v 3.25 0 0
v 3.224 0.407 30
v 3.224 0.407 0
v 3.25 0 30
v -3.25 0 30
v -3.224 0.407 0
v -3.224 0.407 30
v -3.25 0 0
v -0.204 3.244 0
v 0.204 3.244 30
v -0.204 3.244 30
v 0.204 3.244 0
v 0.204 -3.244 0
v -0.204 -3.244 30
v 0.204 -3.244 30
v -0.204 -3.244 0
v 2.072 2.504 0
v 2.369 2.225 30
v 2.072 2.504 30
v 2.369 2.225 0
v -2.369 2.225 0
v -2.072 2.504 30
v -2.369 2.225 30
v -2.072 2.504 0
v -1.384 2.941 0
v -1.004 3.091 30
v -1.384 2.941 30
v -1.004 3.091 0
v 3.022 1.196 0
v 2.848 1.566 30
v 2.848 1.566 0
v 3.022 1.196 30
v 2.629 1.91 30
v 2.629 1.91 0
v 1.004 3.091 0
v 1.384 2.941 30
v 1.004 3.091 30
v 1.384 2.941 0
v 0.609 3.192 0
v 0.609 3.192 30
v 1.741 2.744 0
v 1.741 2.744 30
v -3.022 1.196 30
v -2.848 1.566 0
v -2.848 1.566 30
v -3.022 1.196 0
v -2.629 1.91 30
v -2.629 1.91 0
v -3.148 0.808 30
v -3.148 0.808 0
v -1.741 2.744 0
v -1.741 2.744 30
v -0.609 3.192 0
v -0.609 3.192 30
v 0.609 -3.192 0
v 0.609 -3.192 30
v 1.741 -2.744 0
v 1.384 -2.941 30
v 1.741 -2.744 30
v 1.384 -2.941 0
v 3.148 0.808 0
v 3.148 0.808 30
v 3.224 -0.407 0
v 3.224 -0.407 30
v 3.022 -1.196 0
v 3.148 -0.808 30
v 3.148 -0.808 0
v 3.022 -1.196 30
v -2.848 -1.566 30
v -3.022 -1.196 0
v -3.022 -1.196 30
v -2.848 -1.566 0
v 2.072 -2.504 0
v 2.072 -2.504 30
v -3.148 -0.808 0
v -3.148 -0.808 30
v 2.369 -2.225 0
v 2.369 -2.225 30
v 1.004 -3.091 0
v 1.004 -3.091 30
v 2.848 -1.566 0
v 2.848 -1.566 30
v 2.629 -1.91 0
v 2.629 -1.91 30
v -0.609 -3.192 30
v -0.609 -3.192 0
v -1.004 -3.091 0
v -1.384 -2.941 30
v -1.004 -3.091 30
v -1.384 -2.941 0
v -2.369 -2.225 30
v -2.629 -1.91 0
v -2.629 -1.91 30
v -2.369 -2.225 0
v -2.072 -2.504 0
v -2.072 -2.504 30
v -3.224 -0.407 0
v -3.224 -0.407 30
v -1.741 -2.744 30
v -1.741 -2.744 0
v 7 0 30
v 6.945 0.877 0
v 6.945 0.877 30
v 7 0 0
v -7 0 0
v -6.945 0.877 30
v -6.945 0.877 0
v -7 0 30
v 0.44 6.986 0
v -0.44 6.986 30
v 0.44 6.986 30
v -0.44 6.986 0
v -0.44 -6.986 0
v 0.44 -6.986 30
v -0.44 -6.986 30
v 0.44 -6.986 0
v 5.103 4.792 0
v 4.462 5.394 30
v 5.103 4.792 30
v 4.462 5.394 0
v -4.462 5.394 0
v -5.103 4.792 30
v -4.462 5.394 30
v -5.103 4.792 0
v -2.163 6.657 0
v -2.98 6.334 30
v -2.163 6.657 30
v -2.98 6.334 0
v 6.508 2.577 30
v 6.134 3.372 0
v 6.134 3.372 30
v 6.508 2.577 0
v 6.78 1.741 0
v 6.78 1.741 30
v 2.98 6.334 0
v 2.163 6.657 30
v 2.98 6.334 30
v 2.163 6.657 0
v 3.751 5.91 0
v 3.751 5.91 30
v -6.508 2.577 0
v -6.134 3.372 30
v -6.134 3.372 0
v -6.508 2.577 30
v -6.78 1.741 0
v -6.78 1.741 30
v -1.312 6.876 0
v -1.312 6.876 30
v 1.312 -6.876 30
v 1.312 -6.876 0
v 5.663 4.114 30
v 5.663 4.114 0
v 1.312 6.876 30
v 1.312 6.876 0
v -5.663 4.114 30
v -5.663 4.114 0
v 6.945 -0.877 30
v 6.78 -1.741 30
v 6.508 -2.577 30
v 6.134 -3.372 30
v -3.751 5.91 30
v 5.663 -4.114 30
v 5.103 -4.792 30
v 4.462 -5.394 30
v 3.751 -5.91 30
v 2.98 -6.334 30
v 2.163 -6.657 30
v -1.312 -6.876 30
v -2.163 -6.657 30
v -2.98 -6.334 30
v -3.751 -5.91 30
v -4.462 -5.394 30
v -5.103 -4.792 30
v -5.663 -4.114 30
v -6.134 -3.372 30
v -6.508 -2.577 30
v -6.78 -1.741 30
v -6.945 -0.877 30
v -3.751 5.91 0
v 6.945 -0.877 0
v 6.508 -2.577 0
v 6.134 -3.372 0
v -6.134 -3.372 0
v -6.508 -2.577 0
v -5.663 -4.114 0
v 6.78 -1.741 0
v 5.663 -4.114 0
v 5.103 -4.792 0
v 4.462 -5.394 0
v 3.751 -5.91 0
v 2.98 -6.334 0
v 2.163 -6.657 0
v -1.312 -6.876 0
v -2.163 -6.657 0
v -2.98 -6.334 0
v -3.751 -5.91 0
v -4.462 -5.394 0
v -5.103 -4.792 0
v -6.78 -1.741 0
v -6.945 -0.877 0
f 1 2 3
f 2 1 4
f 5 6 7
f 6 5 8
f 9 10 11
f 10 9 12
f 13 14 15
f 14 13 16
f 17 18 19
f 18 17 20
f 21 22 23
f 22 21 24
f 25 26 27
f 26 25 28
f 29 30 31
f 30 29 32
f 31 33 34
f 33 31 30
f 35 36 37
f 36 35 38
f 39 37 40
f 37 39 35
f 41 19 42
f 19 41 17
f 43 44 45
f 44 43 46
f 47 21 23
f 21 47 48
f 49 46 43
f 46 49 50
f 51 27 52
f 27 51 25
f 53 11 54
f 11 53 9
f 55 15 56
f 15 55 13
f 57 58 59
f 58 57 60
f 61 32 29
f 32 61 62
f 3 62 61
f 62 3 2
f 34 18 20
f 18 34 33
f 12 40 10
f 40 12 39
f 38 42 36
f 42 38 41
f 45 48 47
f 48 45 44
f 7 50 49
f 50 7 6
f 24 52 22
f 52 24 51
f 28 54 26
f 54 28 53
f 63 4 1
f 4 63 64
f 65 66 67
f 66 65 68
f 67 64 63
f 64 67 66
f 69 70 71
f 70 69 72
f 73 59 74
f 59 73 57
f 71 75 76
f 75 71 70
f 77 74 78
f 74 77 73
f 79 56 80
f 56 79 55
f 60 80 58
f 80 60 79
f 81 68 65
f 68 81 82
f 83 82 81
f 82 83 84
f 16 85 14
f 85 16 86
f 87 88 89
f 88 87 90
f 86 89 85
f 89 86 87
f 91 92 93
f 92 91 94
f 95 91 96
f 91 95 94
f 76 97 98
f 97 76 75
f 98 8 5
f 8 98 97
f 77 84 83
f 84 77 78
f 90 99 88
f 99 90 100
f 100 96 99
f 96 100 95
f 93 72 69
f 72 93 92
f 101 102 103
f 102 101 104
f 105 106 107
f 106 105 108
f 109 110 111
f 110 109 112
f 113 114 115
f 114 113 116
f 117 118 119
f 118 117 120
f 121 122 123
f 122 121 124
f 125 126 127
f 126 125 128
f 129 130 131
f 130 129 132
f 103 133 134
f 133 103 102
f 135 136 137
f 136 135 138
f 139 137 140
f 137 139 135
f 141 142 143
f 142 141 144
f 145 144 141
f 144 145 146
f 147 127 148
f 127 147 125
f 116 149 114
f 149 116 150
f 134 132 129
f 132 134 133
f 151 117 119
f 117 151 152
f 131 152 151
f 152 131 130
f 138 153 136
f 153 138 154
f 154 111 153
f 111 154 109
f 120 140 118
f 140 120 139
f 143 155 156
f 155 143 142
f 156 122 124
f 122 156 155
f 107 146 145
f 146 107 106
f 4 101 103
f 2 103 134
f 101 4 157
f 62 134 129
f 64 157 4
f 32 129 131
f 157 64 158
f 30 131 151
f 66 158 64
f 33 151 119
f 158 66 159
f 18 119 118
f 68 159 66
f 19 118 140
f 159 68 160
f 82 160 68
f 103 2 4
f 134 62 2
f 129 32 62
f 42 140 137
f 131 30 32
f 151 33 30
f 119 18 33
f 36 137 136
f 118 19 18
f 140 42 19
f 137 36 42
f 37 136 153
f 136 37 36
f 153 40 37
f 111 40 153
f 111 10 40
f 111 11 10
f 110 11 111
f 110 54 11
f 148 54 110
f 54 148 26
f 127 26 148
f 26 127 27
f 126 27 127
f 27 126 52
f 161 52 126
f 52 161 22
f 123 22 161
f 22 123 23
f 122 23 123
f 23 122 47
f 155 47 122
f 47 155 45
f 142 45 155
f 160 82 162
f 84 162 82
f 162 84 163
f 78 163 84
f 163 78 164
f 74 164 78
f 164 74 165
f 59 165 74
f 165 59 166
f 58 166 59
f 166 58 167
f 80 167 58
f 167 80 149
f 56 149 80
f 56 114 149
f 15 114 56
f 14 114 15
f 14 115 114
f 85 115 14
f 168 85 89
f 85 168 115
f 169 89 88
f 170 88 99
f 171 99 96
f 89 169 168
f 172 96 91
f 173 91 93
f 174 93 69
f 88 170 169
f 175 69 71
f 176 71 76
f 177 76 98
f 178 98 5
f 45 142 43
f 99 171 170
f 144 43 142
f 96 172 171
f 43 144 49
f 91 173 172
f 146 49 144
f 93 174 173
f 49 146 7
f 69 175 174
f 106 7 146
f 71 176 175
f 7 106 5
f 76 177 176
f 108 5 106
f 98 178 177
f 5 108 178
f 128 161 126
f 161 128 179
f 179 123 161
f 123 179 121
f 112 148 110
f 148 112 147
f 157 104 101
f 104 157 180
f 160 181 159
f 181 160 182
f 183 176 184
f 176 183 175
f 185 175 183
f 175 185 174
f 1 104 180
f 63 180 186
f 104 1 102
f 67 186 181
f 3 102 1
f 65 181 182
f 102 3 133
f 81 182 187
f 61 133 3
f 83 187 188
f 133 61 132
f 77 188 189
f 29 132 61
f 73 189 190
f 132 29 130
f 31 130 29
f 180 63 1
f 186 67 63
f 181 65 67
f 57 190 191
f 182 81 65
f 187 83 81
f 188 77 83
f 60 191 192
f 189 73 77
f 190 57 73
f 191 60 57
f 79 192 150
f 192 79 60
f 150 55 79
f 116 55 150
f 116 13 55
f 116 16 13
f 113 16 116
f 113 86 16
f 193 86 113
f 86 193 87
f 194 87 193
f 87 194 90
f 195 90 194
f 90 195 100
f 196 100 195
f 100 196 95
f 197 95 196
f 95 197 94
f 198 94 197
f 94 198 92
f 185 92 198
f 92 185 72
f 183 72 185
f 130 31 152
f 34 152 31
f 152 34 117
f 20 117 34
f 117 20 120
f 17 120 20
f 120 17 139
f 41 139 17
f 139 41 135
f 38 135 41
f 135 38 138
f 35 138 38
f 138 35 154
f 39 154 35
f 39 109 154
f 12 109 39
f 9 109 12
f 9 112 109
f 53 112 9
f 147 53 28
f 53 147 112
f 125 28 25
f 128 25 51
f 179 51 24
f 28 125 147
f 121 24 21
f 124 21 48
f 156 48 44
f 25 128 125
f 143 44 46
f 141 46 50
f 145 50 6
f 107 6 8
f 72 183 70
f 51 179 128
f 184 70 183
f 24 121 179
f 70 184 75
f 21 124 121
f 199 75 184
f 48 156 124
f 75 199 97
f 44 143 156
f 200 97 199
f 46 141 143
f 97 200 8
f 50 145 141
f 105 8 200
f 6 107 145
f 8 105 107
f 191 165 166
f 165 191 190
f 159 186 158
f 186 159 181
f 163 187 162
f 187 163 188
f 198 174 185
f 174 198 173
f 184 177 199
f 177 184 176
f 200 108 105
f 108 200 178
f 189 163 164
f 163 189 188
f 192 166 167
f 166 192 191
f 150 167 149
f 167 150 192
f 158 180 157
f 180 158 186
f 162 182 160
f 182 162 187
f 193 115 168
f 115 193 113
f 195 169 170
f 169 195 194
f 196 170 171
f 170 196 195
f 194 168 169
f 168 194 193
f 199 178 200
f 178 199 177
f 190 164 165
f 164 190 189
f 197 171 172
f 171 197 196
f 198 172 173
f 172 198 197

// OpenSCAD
$fn = 50;


difference() {
	union() {
		cylinder(h = 30, r = 7.0000000000);
	}
	union() {
		translate(v = [0.0000000000, 0.0000000000, -100.0000000000]) {
			cylinder(h = 200, r = 3.2500000000);
		}
		cylinder(h = 30, r = 1.8000000000);
		cylinder(h = 30, r = 1.8000000000);
		cylinder(h = 30, r = 1.8000000000);
	}
}
